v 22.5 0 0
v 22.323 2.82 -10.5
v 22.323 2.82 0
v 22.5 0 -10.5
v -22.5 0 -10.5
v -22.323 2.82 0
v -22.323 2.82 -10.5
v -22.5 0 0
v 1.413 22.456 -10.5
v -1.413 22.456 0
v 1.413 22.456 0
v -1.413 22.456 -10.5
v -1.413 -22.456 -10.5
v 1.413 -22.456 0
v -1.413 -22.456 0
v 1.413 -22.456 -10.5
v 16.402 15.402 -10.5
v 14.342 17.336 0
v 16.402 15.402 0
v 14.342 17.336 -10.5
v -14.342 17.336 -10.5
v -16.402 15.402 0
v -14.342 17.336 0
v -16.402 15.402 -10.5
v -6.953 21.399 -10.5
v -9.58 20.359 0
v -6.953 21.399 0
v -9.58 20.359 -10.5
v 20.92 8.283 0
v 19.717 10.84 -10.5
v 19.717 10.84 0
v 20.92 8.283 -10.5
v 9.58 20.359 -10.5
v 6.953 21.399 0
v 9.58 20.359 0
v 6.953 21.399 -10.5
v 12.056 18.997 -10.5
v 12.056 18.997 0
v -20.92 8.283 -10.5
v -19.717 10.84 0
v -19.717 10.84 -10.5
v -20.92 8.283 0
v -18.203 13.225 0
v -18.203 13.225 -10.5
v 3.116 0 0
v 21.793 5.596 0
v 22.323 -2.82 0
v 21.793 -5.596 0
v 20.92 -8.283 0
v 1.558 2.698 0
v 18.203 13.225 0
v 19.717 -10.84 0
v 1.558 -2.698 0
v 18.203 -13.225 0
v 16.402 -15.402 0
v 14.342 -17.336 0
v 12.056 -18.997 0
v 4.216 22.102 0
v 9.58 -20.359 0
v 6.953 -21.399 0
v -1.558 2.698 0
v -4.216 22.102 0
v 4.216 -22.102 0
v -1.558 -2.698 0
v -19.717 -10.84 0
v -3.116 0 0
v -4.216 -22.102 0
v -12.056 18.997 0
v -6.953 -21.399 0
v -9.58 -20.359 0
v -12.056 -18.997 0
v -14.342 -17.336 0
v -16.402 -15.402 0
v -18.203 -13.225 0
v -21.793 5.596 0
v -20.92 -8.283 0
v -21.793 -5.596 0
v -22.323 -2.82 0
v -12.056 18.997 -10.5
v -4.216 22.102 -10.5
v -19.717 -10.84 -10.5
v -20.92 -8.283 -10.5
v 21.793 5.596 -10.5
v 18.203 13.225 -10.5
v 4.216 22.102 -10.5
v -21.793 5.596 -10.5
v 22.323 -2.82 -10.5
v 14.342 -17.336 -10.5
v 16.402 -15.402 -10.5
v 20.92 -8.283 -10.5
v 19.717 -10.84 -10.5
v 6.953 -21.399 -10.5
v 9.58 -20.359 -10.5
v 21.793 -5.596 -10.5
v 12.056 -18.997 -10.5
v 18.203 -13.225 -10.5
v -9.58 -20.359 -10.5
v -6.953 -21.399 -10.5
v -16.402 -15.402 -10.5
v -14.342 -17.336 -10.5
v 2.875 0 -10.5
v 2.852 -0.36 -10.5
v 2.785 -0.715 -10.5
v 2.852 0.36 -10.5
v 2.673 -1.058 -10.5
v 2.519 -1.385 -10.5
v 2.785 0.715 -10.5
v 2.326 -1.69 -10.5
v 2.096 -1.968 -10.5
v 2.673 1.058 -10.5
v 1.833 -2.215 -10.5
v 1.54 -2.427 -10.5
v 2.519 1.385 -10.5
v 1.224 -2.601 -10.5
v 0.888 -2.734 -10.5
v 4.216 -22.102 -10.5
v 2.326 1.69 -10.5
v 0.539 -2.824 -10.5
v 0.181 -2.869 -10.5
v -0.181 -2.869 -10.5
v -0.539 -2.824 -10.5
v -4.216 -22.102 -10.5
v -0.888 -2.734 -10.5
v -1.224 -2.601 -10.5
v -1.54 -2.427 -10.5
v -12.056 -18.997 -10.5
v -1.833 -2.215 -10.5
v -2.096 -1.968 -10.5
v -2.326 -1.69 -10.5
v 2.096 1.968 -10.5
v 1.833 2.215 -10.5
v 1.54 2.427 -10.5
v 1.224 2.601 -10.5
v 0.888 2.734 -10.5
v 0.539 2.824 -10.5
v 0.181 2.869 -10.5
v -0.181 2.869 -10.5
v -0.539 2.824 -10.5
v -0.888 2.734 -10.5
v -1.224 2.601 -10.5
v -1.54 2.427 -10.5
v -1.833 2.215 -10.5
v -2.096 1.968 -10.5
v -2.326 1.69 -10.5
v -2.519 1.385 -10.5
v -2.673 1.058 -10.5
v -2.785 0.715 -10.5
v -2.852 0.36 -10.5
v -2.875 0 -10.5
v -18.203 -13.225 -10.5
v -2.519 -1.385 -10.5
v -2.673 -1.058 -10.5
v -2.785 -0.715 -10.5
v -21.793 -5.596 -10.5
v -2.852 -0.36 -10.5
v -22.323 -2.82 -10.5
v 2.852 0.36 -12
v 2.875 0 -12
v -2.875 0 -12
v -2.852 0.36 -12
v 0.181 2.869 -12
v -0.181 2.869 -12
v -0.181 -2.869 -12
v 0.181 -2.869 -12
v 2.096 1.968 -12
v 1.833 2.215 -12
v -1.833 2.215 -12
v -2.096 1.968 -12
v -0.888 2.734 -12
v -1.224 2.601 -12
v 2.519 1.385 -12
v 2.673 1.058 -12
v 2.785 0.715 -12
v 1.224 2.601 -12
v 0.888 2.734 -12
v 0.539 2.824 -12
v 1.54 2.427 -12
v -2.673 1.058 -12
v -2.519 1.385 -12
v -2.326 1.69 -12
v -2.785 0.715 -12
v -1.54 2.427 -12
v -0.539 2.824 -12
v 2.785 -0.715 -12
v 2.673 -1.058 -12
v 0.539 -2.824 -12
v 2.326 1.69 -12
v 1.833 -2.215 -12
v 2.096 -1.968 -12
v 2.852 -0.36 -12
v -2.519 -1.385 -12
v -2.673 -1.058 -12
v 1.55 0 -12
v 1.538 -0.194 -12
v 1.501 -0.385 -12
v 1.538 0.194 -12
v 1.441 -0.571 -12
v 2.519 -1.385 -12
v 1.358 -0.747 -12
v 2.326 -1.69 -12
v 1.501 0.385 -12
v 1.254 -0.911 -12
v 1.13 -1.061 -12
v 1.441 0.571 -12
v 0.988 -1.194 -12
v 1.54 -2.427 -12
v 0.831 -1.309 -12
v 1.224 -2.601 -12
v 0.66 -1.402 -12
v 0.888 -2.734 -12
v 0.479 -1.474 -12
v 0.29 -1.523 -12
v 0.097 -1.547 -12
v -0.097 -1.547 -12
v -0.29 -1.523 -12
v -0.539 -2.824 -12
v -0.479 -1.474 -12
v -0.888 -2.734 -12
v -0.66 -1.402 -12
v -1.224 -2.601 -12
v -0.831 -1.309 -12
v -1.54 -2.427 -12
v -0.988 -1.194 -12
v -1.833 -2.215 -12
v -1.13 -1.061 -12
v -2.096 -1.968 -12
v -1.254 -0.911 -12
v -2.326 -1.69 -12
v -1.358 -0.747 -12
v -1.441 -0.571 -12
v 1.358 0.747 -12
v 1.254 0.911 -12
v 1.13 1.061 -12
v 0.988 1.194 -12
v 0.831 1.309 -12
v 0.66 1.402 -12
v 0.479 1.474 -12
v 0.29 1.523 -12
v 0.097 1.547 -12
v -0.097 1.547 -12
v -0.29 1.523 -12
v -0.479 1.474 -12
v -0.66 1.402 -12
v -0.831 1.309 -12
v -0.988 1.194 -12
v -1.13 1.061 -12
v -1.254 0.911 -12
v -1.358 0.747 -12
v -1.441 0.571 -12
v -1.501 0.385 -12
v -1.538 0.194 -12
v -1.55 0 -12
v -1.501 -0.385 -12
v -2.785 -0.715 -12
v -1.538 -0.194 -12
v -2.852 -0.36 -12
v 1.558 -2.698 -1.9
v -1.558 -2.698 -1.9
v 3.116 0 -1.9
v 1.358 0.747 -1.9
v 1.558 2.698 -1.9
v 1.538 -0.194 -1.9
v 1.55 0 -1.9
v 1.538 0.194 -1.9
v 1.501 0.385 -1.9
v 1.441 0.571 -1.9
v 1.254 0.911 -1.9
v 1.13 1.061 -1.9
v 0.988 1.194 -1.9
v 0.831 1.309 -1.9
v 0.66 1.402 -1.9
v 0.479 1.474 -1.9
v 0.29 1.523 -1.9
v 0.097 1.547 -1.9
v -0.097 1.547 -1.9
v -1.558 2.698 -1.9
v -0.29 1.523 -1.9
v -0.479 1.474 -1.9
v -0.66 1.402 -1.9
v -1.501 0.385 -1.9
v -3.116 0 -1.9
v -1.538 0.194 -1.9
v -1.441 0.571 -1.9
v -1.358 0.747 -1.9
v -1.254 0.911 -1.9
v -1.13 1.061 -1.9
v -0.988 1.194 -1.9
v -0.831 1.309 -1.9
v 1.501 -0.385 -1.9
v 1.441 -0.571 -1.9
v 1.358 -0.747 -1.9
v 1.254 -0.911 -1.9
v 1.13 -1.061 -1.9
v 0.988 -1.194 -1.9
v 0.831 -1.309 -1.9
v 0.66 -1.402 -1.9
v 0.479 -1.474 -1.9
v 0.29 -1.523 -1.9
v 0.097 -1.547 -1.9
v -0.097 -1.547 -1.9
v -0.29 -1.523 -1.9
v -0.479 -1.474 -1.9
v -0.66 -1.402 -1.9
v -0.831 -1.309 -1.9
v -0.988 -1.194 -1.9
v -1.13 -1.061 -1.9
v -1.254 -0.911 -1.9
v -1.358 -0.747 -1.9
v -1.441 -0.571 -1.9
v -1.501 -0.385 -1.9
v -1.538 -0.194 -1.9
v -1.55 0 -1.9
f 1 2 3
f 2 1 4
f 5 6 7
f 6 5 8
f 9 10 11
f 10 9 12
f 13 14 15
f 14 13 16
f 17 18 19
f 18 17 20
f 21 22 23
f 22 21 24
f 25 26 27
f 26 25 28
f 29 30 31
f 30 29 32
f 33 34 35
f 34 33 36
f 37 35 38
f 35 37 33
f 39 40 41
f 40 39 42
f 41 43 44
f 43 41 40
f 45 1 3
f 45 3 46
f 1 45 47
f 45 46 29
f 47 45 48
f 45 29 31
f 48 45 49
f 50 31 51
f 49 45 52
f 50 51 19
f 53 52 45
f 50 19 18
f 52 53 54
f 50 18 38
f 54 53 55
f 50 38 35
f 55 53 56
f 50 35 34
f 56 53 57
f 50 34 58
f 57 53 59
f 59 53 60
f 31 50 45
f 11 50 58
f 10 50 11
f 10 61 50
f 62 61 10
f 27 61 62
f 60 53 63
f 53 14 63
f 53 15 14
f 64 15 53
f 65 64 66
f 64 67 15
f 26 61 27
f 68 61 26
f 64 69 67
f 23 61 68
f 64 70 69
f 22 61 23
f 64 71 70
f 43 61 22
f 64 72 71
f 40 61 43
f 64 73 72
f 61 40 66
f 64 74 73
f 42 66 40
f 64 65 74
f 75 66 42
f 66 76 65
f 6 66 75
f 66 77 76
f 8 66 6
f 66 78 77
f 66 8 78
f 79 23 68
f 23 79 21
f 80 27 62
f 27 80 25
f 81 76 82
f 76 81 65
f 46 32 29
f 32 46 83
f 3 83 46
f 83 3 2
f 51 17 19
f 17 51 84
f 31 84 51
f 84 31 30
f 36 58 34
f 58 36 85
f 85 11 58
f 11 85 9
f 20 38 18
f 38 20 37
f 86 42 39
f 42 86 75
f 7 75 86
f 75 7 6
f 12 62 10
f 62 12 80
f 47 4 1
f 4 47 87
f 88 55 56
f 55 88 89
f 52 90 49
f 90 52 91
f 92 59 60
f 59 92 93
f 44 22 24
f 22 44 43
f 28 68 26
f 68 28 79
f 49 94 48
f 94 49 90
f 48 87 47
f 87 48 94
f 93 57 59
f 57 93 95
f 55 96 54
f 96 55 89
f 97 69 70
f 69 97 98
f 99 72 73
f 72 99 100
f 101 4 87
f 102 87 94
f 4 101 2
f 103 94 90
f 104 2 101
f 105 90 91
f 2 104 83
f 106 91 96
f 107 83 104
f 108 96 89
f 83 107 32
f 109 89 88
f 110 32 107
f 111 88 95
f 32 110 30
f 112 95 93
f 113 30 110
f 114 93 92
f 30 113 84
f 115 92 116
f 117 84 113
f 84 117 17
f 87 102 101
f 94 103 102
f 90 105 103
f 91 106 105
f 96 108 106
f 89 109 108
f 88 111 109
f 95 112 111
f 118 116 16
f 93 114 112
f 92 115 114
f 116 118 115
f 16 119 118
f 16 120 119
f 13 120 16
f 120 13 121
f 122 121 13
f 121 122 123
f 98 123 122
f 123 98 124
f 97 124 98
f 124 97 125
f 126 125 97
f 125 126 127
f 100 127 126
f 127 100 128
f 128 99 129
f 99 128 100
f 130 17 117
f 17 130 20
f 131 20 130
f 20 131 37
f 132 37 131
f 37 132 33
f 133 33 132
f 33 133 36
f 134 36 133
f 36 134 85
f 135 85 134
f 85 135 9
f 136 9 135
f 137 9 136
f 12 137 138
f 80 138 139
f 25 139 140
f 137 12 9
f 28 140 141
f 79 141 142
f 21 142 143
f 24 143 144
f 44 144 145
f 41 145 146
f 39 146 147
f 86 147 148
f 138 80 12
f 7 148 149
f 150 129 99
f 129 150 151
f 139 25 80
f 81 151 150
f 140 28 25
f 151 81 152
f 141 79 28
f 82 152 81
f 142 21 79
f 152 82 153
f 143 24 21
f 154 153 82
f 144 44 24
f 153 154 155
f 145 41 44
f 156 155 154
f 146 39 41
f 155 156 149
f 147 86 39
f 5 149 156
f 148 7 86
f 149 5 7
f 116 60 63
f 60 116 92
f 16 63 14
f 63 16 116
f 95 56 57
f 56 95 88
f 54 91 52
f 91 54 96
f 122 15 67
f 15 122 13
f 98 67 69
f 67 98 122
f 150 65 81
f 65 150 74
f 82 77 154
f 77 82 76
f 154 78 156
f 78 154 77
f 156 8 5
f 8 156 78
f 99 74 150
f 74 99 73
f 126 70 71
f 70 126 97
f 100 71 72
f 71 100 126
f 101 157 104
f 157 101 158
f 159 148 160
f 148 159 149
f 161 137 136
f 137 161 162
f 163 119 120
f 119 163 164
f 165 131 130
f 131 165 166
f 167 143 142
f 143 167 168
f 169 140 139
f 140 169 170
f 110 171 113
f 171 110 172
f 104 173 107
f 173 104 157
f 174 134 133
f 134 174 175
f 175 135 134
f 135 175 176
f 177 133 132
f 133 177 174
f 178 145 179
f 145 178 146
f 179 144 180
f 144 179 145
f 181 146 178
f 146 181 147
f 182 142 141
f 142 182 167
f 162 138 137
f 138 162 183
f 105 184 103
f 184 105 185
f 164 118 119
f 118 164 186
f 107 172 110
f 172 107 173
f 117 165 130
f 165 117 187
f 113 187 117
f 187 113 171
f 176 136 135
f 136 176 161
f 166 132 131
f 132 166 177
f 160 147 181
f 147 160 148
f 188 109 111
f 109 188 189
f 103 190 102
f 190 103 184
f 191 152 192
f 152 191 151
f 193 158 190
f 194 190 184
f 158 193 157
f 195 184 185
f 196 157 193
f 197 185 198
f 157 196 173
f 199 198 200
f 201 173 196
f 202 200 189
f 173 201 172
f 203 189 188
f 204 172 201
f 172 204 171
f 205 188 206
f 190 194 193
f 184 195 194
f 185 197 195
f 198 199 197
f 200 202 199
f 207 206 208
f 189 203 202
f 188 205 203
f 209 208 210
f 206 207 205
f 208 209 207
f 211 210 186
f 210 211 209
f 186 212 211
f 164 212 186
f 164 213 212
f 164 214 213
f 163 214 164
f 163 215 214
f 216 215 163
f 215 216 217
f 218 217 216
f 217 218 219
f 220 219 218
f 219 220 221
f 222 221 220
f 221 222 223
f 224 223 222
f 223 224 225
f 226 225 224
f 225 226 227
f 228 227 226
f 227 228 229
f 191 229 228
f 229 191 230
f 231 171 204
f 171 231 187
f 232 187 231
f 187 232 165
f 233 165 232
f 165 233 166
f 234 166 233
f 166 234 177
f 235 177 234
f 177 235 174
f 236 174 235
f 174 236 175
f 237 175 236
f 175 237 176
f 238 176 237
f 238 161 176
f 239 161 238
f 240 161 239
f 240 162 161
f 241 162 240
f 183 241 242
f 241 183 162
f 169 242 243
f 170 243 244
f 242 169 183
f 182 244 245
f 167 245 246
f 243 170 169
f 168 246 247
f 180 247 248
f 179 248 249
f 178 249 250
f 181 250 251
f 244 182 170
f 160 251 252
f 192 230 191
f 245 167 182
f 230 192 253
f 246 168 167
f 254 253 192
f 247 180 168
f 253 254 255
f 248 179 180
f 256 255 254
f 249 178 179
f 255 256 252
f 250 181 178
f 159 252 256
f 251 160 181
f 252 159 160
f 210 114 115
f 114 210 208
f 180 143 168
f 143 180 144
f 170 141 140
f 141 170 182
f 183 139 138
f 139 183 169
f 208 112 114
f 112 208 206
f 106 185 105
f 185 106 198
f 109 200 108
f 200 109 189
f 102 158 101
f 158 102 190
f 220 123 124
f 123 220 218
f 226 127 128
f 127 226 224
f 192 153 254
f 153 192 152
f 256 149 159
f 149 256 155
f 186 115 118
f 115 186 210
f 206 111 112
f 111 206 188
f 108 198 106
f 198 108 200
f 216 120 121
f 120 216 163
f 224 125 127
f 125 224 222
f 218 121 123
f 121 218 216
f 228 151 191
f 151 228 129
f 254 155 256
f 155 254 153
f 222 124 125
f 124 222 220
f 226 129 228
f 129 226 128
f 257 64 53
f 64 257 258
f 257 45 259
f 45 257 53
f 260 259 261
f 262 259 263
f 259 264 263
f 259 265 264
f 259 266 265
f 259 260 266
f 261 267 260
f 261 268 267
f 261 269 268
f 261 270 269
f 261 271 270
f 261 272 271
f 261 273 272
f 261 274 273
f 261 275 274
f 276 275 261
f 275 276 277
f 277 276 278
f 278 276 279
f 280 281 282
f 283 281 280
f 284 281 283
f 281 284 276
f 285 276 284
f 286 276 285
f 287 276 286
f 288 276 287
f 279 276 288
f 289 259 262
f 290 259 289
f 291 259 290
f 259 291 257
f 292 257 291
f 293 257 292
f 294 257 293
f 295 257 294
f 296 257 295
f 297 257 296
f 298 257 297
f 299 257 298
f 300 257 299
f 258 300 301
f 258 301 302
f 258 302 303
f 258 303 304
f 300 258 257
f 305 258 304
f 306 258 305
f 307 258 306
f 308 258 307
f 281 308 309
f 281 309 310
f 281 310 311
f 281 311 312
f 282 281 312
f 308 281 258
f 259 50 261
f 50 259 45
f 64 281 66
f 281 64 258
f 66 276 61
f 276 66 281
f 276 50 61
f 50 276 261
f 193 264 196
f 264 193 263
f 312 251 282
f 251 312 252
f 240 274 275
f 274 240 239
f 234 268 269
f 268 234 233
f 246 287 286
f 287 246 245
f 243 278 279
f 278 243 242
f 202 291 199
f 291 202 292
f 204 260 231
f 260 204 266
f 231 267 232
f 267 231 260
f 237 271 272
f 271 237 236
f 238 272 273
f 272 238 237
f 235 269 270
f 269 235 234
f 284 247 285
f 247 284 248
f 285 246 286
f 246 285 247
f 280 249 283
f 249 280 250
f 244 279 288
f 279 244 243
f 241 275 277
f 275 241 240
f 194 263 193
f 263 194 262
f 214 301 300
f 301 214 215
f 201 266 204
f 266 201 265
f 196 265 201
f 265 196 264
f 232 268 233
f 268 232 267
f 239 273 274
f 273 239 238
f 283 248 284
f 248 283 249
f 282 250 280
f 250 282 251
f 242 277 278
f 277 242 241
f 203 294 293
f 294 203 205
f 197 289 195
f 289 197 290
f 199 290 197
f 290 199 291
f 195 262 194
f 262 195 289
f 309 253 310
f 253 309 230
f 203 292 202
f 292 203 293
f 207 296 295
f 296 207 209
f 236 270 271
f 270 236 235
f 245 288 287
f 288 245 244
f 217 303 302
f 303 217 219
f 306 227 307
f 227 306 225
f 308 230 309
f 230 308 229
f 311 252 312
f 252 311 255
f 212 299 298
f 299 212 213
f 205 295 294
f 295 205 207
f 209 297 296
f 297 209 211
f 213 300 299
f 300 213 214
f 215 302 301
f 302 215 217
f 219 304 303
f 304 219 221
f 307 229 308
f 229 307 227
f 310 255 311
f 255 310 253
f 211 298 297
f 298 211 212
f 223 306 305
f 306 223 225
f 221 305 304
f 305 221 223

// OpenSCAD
$fn = 50;

difference() {
	union() {
		translate(v = [0, 0, -10.5]) {
			cylinder(h = 10.5, r = 22.5);
		}
		#translate(v = [0, 0, -12.0]) {
			cylinder(h = 12, r = 2.875);
		}
	}
	union() {
		translate(v = [0, 0, 0]) {
			rotate(a = [0, 0, 0]) {
				difference() {
					union() {
						translate(v = [0, 0, -1.9]) {
							linear_extrude(height = 1.9) {
								polygon(points = [[3.1158, 0.0], [1.5579000000000005, 2.698361953111554], [-1.5578999999999994, 2.6983619531115544], [-3.1158, 3.815754496783323e-16], [-1.5579000000000014, -2.6983619531115535], [1.557899999999998, -2.6983619531115552]]);
							}
						}
					}
					union();
				}
			}
		}
		#translate(v = [0, 0, -100.0]) {
			cylinder(h = 200, r = 1.55);
		}
	}
}
